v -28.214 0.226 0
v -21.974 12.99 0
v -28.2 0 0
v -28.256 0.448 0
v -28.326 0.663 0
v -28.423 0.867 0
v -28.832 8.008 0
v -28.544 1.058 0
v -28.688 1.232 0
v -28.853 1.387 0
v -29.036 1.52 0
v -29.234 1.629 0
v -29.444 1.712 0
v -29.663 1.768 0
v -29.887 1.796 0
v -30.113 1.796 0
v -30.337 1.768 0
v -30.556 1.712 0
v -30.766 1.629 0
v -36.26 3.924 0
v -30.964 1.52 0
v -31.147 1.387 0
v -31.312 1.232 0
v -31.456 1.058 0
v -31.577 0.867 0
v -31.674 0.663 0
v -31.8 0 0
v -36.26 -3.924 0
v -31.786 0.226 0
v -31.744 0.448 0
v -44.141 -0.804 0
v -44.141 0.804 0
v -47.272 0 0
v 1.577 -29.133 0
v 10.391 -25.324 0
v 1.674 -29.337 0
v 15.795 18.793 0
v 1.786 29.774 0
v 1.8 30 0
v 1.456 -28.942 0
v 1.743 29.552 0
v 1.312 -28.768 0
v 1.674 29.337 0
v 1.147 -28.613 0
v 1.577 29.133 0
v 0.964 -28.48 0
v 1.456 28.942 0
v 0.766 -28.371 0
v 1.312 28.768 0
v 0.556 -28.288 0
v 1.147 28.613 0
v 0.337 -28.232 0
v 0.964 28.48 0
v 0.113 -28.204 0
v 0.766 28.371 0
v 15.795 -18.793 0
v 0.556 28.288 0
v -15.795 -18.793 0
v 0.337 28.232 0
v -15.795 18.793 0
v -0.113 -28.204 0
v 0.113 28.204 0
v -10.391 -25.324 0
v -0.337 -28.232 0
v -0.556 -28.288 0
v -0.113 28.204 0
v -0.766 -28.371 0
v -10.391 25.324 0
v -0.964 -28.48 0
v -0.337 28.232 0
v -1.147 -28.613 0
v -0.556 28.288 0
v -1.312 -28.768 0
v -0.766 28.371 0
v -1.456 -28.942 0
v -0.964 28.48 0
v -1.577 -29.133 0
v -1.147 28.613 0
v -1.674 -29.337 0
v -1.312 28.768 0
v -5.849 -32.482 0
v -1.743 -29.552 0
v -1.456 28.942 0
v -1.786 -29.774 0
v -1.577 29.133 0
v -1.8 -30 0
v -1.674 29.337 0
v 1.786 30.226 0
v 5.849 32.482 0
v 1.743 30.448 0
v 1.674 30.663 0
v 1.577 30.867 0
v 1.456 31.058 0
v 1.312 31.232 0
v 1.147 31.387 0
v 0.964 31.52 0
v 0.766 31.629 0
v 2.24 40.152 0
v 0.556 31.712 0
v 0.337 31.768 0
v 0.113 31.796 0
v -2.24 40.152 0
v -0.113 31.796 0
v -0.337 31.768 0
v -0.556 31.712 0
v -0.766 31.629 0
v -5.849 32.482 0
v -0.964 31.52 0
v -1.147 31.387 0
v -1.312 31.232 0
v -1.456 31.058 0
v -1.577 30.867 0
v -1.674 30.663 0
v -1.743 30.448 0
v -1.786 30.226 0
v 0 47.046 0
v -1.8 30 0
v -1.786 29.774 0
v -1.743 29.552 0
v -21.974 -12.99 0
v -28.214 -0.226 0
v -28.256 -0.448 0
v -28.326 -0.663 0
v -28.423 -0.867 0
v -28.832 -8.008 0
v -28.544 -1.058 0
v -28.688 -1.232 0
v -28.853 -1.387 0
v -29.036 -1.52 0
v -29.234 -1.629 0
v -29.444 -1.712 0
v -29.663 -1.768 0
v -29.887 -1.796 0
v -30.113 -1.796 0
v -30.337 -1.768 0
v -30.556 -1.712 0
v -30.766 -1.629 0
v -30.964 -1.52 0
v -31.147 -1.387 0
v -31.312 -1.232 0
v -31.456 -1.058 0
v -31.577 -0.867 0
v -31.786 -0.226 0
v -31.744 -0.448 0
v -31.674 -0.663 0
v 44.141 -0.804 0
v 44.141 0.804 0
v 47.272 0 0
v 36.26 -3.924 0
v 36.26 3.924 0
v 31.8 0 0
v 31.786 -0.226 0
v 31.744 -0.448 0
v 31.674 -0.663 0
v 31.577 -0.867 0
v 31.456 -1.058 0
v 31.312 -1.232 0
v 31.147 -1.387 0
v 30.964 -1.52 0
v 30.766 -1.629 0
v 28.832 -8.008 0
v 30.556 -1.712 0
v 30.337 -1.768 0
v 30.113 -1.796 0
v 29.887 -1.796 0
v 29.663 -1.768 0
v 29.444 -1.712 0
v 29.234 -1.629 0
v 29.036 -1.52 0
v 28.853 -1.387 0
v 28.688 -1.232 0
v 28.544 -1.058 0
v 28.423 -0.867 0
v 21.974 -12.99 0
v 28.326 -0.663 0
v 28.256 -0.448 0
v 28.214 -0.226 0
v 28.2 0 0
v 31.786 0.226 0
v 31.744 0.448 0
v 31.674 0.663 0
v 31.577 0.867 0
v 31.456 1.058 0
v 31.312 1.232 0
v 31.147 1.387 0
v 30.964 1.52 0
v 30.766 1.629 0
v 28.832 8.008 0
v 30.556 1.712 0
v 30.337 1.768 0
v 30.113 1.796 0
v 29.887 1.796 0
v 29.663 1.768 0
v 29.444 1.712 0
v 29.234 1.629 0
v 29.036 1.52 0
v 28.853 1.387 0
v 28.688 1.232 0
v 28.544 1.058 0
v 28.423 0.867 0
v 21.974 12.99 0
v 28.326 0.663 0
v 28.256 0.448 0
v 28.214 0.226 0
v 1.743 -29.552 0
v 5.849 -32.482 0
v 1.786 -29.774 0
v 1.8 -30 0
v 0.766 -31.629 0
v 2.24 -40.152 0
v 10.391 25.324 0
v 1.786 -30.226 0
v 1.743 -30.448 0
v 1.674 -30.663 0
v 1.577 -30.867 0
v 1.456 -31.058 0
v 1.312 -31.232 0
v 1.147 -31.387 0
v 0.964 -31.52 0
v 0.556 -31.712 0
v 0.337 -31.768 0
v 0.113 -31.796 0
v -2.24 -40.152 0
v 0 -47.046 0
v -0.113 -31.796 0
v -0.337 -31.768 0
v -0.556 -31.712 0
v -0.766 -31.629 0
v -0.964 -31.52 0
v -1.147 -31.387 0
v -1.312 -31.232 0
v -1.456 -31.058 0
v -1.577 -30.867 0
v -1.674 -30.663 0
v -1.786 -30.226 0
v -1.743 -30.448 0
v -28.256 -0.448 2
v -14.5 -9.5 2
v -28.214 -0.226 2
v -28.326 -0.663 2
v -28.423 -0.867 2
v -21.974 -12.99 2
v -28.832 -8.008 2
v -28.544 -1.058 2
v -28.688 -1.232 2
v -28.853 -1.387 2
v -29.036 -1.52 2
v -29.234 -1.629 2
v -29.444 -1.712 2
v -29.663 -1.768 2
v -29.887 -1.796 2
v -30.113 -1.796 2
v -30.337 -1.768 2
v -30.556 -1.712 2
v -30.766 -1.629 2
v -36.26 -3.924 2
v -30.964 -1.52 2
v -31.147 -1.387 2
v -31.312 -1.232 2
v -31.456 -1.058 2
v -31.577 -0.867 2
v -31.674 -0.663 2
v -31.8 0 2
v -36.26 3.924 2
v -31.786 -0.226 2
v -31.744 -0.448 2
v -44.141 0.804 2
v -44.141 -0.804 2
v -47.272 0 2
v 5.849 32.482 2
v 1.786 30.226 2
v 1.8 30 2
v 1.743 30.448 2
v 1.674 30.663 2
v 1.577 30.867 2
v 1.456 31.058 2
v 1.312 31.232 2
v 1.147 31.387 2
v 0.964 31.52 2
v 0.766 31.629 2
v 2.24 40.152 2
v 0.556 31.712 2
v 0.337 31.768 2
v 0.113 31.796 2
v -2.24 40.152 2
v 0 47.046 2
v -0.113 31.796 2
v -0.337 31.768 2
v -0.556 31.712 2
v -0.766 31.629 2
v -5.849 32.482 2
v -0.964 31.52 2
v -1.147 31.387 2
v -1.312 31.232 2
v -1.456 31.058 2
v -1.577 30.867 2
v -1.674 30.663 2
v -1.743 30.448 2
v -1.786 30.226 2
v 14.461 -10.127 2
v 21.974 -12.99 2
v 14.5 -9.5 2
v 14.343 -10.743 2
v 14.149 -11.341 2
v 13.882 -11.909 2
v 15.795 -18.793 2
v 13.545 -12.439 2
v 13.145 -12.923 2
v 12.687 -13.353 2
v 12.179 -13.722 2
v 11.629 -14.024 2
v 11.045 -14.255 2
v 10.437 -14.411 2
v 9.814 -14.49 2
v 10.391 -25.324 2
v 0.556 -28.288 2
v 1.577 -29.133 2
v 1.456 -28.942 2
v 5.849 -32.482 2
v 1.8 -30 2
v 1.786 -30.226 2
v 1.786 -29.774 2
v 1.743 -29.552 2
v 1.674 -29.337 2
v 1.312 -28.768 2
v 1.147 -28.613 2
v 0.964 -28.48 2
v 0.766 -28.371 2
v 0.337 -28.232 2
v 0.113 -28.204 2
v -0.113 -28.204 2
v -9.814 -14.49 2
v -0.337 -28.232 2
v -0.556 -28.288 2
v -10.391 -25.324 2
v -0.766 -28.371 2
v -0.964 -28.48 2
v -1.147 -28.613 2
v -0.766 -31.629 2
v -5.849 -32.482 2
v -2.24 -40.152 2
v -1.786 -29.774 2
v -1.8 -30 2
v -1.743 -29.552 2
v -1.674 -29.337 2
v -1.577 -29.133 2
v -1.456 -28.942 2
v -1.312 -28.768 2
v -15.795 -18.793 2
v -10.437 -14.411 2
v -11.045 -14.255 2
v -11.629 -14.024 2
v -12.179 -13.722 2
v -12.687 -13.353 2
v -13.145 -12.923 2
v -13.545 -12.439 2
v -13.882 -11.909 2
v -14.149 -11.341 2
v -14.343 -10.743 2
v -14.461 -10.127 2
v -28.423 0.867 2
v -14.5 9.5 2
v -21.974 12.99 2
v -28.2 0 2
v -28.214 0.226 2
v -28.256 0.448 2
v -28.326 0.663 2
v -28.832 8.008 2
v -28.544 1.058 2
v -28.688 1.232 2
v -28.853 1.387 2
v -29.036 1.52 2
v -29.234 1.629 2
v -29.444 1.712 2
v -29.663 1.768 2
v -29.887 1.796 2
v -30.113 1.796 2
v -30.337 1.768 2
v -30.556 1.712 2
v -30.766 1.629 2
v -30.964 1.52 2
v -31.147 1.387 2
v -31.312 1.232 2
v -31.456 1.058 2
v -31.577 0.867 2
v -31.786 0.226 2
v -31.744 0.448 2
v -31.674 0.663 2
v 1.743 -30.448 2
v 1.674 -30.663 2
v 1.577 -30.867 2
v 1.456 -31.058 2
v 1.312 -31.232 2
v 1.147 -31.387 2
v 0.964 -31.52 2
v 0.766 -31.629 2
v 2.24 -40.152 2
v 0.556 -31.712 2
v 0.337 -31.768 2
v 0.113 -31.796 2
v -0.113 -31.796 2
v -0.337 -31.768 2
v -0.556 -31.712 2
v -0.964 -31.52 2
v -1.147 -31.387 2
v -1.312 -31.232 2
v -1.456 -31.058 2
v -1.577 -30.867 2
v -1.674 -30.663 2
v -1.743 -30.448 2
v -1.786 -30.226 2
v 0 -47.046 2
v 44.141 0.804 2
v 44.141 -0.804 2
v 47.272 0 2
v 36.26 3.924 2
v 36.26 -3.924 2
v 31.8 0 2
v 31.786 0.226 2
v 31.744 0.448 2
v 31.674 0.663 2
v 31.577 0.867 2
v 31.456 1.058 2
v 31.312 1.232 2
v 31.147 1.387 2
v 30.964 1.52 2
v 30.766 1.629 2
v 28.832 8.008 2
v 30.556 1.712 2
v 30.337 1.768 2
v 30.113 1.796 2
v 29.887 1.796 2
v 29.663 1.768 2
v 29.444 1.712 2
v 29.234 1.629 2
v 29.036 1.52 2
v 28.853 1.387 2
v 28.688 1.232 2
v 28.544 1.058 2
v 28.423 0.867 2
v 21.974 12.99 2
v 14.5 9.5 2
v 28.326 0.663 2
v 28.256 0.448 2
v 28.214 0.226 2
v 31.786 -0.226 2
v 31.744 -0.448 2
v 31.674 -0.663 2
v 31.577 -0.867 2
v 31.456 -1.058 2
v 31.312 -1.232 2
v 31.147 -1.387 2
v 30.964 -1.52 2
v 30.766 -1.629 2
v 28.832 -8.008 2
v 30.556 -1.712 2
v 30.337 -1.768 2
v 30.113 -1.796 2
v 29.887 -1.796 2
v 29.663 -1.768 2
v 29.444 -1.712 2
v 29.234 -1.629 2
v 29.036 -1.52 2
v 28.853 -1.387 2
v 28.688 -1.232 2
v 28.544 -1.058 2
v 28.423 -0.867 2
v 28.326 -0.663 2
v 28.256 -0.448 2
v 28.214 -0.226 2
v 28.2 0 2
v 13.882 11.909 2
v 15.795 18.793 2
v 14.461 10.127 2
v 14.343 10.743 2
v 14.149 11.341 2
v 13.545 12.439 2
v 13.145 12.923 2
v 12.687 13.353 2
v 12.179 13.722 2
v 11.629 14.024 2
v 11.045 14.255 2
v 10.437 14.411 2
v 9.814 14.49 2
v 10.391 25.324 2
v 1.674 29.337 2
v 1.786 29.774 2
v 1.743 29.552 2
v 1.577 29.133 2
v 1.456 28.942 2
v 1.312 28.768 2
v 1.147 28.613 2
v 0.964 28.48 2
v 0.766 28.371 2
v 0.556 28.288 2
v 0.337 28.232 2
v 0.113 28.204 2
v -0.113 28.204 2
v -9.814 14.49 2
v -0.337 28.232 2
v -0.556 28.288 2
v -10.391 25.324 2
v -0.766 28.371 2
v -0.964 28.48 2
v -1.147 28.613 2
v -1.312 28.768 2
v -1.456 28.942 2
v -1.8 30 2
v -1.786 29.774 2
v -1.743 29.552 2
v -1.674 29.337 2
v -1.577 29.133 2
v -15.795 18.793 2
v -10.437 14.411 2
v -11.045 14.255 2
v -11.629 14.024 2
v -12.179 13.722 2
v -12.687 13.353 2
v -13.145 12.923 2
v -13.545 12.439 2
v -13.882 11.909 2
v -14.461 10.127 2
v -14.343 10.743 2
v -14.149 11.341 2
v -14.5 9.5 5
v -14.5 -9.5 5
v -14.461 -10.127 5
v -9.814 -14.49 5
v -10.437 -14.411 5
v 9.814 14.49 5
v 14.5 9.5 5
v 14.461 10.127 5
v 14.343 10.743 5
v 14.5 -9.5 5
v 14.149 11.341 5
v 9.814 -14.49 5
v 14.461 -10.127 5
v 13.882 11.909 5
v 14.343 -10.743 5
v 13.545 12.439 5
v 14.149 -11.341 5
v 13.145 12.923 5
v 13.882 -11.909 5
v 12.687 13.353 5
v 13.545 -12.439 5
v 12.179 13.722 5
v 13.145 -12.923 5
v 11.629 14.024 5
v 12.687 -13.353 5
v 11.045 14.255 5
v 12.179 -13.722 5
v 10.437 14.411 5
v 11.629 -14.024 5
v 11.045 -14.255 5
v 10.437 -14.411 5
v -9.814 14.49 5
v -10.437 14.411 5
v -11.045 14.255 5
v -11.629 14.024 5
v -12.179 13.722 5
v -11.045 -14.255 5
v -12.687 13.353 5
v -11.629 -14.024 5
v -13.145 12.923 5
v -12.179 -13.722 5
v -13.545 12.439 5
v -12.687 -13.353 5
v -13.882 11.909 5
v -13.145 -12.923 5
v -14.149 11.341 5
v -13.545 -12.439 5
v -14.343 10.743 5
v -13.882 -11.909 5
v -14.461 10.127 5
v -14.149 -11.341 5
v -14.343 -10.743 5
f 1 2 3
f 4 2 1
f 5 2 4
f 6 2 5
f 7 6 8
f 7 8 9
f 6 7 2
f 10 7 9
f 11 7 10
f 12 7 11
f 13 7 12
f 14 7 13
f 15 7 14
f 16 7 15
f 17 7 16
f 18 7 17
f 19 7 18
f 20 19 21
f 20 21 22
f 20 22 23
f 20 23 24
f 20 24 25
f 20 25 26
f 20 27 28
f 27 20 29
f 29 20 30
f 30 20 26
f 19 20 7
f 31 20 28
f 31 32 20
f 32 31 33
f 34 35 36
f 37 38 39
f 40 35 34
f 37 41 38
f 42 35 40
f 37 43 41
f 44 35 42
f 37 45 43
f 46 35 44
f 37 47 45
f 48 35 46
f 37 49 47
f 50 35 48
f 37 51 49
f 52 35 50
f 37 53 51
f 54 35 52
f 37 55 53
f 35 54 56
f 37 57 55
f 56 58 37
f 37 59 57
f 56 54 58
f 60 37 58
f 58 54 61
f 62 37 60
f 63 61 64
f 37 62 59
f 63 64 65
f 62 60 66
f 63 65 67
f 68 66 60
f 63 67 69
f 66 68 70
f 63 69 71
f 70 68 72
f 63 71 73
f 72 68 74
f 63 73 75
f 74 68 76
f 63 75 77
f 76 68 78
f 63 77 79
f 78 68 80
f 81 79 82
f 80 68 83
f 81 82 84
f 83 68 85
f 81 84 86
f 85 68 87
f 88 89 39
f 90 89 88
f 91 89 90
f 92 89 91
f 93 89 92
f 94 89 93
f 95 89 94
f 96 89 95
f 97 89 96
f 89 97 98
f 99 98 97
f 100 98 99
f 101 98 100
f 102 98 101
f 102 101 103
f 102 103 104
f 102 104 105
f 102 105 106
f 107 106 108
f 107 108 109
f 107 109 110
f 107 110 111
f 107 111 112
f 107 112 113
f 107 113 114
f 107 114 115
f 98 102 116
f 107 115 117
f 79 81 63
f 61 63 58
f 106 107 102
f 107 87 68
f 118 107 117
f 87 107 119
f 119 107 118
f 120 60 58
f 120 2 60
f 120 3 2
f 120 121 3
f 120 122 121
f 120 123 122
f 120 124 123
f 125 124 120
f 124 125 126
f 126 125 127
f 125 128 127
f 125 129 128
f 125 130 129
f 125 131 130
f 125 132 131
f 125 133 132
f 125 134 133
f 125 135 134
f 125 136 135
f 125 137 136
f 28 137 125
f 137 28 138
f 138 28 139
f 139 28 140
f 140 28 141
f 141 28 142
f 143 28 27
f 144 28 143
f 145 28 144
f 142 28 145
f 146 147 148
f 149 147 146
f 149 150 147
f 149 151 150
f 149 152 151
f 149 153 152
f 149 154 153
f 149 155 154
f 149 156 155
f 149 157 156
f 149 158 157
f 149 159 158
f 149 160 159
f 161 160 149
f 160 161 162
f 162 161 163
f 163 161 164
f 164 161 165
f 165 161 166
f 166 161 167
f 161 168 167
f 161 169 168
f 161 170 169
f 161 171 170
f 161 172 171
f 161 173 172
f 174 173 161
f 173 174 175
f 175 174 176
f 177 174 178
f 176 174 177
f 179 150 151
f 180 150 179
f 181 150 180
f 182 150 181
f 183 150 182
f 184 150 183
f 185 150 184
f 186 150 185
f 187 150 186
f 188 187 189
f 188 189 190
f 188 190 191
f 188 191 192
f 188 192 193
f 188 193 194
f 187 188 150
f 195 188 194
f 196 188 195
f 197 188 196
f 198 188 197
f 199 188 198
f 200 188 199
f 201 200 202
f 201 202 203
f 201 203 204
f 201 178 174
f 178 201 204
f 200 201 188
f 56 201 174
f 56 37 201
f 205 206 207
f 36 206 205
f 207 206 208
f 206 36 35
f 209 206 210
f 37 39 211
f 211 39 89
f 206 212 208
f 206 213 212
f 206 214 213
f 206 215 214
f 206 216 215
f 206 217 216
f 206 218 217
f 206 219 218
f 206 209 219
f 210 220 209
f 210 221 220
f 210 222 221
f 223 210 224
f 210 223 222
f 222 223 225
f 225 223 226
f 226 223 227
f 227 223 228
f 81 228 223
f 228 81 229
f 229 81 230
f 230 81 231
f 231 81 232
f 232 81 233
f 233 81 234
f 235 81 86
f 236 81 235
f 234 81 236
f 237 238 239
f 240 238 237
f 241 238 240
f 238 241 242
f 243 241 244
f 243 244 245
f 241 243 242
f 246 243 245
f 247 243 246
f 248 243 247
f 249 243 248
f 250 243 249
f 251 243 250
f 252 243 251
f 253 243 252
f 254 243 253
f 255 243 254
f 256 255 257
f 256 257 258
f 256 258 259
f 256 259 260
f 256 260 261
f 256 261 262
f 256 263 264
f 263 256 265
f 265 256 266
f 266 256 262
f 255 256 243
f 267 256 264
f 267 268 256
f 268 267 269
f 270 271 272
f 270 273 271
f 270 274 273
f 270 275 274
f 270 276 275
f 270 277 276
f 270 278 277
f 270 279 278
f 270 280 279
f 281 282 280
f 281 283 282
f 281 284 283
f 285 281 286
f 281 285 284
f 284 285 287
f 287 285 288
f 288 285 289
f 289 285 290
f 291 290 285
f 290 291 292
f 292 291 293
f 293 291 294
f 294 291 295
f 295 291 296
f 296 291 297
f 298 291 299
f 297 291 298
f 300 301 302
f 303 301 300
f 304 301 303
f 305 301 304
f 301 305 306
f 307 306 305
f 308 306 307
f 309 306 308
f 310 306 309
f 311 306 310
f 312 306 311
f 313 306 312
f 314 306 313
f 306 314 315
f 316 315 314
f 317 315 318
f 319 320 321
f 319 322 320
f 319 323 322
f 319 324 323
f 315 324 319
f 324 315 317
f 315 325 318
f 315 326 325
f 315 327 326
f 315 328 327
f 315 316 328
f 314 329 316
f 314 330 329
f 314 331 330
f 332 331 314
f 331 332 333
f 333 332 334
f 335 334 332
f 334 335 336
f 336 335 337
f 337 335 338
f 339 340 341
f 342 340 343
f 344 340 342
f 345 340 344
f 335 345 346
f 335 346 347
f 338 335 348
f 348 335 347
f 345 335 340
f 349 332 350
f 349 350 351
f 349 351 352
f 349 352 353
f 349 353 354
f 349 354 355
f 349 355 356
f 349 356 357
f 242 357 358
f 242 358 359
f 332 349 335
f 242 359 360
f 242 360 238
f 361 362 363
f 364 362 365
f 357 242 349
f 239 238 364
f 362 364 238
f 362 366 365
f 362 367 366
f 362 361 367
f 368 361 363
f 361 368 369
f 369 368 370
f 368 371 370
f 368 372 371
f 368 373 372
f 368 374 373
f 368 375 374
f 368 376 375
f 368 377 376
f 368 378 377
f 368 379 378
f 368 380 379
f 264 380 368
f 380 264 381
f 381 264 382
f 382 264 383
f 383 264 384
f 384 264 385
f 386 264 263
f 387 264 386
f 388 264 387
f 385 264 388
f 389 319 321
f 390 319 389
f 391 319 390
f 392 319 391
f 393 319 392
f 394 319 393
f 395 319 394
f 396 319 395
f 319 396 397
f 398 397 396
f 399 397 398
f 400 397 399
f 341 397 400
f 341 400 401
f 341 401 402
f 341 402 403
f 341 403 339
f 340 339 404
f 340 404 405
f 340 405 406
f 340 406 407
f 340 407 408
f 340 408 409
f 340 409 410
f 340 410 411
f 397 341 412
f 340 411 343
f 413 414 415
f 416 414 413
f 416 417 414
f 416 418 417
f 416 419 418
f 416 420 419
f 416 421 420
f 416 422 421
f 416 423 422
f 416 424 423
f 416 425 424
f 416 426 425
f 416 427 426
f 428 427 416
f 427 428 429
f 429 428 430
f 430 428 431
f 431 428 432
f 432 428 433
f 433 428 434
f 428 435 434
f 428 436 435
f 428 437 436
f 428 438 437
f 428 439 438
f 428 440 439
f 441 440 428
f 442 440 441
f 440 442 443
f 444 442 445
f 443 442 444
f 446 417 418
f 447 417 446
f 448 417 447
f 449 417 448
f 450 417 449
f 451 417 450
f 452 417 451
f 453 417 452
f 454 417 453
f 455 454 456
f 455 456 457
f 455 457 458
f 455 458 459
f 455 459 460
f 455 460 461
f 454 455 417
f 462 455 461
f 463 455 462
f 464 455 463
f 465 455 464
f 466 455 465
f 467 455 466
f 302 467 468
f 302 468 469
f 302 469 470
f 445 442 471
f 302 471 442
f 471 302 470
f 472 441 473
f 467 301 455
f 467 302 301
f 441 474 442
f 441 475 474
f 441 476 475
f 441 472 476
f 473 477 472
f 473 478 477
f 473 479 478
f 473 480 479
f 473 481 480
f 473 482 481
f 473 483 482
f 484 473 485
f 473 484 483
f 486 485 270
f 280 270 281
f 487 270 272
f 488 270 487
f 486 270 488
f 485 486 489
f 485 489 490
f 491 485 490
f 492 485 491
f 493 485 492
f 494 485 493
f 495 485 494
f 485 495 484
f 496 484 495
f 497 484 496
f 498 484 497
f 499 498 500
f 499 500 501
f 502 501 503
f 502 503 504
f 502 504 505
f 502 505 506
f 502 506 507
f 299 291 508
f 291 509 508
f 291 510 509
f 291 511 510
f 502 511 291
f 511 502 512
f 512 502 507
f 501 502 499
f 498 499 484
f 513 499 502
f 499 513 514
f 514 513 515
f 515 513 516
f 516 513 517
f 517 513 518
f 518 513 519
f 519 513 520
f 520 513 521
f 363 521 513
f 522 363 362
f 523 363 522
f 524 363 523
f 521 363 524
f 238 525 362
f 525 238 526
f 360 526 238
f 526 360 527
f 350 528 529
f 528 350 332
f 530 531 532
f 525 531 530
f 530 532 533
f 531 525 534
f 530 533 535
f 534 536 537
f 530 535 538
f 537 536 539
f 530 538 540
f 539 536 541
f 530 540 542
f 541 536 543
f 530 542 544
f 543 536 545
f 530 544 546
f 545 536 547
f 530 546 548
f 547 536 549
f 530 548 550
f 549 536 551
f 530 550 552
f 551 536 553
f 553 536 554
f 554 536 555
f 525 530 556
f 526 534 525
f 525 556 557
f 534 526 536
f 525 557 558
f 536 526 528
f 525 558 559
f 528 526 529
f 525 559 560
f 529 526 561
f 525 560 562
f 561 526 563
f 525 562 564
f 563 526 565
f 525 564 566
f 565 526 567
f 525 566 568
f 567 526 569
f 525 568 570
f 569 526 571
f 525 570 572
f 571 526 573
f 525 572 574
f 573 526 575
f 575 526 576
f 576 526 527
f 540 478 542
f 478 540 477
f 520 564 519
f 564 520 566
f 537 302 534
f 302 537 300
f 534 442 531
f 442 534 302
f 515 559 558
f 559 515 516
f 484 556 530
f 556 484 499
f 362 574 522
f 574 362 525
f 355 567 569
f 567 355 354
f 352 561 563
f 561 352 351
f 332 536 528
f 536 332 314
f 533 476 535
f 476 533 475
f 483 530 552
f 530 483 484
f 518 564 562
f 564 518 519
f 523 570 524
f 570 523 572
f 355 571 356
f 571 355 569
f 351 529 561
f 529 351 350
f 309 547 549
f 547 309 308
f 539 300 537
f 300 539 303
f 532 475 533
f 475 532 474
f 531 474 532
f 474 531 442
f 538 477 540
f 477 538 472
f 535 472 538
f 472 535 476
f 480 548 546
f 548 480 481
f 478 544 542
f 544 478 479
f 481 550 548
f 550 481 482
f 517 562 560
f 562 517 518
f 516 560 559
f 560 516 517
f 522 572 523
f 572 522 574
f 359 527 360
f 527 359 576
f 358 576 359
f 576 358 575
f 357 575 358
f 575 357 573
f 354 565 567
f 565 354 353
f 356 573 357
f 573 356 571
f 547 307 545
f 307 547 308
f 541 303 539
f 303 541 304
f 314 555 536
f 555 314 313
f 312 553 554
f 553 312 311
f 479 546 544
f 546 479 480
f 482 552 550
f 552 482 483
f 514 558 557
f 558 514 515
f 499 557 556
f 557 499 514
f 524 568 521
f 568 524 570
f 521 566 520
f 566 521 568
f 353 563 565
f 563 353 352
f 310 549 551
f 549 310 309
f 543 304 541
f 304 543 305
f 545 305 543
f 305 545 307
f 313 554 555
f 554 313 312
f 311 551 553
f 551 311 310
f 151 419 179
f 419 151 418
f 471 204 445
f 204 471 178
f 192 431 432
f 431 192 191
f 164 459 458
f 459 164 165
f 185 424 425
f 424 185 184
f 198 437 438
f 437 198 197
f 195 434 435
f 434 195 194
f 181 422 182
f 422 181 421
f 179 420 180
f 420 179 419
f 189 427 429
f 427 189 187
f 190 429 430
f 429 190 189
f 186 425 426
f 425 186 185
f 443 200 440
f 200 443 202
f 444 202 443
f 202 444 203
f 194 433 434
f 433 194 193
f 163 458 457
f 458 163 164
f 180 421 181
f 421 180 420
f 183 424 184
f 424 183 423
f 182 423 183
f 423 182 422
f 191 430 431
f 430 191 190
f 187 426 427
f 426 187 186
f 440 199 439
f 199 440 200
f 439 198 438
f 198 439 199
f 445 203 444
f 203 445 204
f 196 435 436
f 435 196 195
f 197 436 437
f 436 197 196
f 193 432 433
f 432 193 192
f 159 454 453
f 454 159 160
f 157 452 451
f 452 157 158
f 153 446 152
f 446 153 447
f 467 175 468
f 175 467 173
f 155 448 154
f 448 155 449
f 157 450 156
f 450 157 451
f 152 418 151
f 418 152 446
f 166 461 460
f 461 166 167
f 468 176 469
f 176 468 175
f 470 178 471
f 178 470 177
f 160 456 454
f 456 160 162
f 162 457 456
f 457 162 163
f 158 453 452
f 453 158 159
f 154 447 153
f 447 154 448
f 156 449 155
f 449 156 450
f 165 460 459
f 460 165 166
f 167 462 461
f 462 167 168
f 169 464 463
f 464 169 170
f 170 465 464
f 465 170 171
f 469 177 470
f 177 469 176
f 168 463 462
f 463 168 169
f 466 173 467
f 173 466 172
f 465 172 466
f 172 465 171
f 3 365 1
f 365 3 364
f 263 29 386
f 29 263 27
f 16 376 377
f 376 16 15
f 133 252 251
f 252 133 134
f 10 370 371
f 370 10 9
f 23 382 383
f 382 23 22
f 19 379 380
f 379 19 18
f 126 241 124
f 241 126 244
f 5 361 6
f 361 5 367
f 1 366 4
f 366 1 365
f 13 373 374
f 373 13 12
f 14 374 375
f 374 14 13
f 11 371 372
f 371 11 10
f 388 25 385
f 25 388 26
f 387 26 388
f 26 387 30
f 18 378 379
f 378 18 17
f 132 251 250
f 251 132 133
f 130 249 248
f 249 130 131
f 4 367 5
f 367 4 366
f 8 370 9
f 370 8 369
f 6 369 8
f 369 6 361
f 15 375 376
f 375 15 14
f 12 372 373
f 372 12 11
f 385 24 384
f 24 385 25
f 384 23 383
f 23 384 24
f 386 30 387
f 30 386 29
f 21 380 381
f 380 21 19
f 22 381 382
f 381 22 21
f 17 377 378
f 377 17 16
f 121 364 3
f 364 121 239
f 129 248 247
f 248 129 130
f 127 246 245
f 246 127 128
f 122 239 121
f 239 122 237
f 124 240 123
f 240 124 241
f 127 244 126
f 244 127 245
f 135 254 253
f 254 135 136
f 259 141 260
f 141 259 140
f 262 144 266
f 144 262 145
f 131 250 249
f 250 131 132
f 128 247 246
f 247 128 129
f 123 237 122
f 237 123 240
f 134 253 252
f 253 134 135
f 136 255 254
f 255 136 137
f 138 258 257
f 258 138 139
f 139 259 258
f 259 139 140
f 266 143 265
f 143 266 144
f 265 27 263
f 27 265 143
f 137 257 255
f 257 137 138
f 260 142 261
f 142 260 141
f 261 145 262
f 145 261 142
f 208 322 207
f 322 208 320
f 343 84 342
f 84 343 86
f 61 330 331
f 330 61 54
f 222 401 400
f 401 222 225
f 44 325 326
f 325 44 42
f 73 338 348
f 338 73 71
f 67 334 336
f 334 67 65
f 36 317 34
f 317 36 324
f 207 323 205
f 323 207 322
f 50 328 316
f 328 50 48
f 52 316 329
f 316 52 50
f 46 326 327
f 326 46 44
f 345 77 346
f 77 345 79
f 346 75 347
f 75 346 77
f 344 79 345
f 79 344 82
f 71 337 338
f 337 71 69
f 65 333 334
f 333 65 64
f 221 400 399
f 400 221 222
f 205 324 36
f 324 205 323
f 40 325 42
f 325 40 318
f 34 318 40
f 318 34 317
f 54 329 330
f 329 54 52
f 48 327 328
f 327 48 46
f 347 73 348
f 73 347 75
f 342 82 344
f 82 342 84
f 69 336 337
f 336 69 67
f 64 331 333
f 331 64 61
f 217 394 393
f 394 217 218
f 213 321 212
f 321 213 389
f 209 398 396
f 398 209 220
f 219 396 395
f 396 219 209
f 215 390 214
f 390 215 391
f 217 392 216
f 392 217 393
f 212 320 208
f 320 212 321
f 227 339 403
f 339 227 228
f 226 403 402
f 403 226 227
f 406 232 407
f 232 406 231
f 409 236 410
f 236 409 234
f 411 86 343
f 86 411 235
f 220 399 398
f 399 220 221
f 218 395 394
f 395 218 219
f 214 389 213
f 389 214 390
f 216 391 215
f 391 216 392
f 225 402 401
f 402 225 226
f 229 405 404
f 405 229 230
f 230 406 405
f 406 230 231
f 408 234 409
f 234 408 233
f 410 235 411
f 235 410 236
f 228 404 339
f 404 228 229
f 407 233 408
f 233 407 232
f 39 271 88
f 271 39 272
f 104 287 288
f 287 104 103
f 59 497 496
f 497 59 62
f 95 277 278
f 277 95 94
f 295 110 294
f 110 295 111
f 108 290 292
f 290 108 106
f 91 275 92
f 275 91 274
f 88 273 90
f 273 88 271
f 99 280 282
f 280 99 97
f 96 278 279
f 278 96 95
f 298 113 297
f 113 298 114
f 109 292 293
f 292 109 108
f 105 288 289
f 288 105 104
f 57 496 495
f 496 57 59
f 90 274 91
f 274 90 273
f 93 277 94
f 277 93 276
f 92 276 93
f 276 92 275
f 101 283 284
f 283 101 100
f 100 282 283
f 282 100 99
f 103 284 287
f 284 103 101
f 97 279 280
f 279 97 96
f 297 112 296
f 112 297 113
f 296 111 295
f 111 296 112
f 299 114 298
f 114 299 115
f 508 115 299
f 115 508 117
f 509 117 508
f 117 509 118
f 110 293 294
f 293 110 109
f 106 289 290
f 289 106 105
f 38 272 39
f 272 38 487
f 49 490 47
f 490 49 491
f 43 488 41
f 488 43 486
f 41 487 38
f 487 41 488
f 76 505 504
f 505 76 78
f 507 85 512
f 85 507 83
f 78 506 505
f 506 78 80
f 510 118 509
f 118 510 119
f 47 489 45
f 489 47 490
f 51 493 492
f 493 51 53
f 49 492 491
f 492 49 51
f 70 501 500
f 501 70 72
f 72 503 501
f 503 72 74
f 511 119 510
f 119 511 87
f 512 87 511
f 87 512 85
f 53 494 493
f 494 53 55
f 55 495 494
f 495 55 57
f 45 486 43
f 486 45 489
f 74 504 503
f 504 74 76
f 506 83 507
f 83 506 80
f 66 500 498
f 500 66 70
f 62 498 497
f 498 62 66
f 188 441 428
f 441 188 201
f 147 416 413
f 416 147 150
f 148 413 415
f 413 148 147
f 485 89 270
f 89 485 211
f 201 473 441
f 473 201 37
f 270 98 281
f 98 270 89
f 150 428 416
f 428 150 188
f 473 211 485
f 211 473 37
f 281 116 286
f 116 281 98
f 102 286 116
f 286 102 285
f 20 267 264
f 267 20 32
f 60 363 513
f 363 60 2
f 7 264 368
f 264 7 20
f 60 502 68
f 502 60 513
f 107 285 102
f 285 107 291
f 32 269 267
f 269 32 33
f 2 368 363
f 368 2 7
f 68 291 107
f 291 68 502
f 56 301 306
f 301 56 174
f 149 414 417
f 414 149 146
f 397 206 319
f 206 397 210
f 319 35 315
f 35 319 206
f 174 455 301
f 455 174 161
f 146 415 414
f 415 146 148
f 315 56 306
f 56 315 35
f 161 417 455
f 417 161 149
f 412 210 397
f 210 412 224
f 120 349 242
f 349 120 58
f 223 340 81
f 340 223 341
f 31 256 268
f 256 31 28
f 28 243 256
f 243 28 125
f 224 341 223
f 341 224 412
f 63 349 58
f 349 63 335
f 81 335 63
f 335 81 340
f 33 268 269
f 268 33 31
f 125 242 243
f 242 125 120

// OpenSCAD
$fn = 50;


difference() {
	union() {
		rotate(a = [0, 0, 45]) {
			hull() {
				translate(v = [-32.0000000000, 32.0000000000, 0]) {
					cylinder(h = 2, r = 5);
				}
				translate(v = [32.0000000000, 32.0000000000, 0]) {
					cylinder(h = 2, r = 5);
				}
				translate(v = [-32.0000000000, -32.0000000000, 0]) {
					cylinder(h = 2, r = 5);
				}
				translate(v = [32.0000000000, -32.0000000000, 0]) {
					cylinder(h = 2, r = 5);
				}
			}
		}
		hull() {
			translate(v = [-9.5000000000, 9.5000000000, 0]) {
				cylinder(h = 5, r = 5);
			}
			translate(v = [9.5000000000, 9.5000000000, 0]) {
				cylinder(h = 5, r = 5);
			}
			translate(v = [-9.5000000000, -9.5000000000, 0]) {
				cylinder(h = 5, r = 5);
			}
			translate(v = [9.5000000000, -9.5000000000, 0]) {
				cylinder(h = 5, r = 5);
			}
		}
	}
	union() {
		translate(v = [30, 0, -100.0000000000]) {
			cylinder(h = 200, r = 1.8000000000);
		}
		translate(v = [-30, 0, -100.0000000000]) {
			cylinder(h = 200, r = 1.8000000000);
		}
		translate(v = [0, -30, -100.0000000000]) {
			cylinder(h = 200, r = 1.8000000000);
		}
		translate(v = [0, 30, -100.0000000000]) {
			cylinder(h = 200, r = 1.8000000000);
		}
		translate(v = [65, 65, 0.0000000000]) {
			cylinder(h = 2, r = 67.5000000000);
		}
		translate(v = [-65, 65, 0.0000000000]) {
			cylinder(h = 2, r = 67.5000000000);
		}
		translate(v = [65, -65, 0.0000000000]) {
			cylinder(h = 2, r = 67.5000000000);
		}
		translate(v = [-65, -65, 0.0000000000]) {
			cylinder(h = 2, r = 67.5000000000);
		}
		translate(v = [65, 65, 0.0000000000]) {
			cylinder(h = 2, r = 67.5000000000);
		}
		translate(v = [-65, 65, 0.0000000000]) {
			cylinder(h = 2, r = 67.5000000000);
		}
		translate(v = [65, -65, 0.0000000000]) {
			cylinder(h = 2, r = 67.5000000000);
		}
		translate(v = [-65, -65, 0.0000000000]) {
			cylinder(h = 2, r = 67.5000000000);
		}
	}
}
